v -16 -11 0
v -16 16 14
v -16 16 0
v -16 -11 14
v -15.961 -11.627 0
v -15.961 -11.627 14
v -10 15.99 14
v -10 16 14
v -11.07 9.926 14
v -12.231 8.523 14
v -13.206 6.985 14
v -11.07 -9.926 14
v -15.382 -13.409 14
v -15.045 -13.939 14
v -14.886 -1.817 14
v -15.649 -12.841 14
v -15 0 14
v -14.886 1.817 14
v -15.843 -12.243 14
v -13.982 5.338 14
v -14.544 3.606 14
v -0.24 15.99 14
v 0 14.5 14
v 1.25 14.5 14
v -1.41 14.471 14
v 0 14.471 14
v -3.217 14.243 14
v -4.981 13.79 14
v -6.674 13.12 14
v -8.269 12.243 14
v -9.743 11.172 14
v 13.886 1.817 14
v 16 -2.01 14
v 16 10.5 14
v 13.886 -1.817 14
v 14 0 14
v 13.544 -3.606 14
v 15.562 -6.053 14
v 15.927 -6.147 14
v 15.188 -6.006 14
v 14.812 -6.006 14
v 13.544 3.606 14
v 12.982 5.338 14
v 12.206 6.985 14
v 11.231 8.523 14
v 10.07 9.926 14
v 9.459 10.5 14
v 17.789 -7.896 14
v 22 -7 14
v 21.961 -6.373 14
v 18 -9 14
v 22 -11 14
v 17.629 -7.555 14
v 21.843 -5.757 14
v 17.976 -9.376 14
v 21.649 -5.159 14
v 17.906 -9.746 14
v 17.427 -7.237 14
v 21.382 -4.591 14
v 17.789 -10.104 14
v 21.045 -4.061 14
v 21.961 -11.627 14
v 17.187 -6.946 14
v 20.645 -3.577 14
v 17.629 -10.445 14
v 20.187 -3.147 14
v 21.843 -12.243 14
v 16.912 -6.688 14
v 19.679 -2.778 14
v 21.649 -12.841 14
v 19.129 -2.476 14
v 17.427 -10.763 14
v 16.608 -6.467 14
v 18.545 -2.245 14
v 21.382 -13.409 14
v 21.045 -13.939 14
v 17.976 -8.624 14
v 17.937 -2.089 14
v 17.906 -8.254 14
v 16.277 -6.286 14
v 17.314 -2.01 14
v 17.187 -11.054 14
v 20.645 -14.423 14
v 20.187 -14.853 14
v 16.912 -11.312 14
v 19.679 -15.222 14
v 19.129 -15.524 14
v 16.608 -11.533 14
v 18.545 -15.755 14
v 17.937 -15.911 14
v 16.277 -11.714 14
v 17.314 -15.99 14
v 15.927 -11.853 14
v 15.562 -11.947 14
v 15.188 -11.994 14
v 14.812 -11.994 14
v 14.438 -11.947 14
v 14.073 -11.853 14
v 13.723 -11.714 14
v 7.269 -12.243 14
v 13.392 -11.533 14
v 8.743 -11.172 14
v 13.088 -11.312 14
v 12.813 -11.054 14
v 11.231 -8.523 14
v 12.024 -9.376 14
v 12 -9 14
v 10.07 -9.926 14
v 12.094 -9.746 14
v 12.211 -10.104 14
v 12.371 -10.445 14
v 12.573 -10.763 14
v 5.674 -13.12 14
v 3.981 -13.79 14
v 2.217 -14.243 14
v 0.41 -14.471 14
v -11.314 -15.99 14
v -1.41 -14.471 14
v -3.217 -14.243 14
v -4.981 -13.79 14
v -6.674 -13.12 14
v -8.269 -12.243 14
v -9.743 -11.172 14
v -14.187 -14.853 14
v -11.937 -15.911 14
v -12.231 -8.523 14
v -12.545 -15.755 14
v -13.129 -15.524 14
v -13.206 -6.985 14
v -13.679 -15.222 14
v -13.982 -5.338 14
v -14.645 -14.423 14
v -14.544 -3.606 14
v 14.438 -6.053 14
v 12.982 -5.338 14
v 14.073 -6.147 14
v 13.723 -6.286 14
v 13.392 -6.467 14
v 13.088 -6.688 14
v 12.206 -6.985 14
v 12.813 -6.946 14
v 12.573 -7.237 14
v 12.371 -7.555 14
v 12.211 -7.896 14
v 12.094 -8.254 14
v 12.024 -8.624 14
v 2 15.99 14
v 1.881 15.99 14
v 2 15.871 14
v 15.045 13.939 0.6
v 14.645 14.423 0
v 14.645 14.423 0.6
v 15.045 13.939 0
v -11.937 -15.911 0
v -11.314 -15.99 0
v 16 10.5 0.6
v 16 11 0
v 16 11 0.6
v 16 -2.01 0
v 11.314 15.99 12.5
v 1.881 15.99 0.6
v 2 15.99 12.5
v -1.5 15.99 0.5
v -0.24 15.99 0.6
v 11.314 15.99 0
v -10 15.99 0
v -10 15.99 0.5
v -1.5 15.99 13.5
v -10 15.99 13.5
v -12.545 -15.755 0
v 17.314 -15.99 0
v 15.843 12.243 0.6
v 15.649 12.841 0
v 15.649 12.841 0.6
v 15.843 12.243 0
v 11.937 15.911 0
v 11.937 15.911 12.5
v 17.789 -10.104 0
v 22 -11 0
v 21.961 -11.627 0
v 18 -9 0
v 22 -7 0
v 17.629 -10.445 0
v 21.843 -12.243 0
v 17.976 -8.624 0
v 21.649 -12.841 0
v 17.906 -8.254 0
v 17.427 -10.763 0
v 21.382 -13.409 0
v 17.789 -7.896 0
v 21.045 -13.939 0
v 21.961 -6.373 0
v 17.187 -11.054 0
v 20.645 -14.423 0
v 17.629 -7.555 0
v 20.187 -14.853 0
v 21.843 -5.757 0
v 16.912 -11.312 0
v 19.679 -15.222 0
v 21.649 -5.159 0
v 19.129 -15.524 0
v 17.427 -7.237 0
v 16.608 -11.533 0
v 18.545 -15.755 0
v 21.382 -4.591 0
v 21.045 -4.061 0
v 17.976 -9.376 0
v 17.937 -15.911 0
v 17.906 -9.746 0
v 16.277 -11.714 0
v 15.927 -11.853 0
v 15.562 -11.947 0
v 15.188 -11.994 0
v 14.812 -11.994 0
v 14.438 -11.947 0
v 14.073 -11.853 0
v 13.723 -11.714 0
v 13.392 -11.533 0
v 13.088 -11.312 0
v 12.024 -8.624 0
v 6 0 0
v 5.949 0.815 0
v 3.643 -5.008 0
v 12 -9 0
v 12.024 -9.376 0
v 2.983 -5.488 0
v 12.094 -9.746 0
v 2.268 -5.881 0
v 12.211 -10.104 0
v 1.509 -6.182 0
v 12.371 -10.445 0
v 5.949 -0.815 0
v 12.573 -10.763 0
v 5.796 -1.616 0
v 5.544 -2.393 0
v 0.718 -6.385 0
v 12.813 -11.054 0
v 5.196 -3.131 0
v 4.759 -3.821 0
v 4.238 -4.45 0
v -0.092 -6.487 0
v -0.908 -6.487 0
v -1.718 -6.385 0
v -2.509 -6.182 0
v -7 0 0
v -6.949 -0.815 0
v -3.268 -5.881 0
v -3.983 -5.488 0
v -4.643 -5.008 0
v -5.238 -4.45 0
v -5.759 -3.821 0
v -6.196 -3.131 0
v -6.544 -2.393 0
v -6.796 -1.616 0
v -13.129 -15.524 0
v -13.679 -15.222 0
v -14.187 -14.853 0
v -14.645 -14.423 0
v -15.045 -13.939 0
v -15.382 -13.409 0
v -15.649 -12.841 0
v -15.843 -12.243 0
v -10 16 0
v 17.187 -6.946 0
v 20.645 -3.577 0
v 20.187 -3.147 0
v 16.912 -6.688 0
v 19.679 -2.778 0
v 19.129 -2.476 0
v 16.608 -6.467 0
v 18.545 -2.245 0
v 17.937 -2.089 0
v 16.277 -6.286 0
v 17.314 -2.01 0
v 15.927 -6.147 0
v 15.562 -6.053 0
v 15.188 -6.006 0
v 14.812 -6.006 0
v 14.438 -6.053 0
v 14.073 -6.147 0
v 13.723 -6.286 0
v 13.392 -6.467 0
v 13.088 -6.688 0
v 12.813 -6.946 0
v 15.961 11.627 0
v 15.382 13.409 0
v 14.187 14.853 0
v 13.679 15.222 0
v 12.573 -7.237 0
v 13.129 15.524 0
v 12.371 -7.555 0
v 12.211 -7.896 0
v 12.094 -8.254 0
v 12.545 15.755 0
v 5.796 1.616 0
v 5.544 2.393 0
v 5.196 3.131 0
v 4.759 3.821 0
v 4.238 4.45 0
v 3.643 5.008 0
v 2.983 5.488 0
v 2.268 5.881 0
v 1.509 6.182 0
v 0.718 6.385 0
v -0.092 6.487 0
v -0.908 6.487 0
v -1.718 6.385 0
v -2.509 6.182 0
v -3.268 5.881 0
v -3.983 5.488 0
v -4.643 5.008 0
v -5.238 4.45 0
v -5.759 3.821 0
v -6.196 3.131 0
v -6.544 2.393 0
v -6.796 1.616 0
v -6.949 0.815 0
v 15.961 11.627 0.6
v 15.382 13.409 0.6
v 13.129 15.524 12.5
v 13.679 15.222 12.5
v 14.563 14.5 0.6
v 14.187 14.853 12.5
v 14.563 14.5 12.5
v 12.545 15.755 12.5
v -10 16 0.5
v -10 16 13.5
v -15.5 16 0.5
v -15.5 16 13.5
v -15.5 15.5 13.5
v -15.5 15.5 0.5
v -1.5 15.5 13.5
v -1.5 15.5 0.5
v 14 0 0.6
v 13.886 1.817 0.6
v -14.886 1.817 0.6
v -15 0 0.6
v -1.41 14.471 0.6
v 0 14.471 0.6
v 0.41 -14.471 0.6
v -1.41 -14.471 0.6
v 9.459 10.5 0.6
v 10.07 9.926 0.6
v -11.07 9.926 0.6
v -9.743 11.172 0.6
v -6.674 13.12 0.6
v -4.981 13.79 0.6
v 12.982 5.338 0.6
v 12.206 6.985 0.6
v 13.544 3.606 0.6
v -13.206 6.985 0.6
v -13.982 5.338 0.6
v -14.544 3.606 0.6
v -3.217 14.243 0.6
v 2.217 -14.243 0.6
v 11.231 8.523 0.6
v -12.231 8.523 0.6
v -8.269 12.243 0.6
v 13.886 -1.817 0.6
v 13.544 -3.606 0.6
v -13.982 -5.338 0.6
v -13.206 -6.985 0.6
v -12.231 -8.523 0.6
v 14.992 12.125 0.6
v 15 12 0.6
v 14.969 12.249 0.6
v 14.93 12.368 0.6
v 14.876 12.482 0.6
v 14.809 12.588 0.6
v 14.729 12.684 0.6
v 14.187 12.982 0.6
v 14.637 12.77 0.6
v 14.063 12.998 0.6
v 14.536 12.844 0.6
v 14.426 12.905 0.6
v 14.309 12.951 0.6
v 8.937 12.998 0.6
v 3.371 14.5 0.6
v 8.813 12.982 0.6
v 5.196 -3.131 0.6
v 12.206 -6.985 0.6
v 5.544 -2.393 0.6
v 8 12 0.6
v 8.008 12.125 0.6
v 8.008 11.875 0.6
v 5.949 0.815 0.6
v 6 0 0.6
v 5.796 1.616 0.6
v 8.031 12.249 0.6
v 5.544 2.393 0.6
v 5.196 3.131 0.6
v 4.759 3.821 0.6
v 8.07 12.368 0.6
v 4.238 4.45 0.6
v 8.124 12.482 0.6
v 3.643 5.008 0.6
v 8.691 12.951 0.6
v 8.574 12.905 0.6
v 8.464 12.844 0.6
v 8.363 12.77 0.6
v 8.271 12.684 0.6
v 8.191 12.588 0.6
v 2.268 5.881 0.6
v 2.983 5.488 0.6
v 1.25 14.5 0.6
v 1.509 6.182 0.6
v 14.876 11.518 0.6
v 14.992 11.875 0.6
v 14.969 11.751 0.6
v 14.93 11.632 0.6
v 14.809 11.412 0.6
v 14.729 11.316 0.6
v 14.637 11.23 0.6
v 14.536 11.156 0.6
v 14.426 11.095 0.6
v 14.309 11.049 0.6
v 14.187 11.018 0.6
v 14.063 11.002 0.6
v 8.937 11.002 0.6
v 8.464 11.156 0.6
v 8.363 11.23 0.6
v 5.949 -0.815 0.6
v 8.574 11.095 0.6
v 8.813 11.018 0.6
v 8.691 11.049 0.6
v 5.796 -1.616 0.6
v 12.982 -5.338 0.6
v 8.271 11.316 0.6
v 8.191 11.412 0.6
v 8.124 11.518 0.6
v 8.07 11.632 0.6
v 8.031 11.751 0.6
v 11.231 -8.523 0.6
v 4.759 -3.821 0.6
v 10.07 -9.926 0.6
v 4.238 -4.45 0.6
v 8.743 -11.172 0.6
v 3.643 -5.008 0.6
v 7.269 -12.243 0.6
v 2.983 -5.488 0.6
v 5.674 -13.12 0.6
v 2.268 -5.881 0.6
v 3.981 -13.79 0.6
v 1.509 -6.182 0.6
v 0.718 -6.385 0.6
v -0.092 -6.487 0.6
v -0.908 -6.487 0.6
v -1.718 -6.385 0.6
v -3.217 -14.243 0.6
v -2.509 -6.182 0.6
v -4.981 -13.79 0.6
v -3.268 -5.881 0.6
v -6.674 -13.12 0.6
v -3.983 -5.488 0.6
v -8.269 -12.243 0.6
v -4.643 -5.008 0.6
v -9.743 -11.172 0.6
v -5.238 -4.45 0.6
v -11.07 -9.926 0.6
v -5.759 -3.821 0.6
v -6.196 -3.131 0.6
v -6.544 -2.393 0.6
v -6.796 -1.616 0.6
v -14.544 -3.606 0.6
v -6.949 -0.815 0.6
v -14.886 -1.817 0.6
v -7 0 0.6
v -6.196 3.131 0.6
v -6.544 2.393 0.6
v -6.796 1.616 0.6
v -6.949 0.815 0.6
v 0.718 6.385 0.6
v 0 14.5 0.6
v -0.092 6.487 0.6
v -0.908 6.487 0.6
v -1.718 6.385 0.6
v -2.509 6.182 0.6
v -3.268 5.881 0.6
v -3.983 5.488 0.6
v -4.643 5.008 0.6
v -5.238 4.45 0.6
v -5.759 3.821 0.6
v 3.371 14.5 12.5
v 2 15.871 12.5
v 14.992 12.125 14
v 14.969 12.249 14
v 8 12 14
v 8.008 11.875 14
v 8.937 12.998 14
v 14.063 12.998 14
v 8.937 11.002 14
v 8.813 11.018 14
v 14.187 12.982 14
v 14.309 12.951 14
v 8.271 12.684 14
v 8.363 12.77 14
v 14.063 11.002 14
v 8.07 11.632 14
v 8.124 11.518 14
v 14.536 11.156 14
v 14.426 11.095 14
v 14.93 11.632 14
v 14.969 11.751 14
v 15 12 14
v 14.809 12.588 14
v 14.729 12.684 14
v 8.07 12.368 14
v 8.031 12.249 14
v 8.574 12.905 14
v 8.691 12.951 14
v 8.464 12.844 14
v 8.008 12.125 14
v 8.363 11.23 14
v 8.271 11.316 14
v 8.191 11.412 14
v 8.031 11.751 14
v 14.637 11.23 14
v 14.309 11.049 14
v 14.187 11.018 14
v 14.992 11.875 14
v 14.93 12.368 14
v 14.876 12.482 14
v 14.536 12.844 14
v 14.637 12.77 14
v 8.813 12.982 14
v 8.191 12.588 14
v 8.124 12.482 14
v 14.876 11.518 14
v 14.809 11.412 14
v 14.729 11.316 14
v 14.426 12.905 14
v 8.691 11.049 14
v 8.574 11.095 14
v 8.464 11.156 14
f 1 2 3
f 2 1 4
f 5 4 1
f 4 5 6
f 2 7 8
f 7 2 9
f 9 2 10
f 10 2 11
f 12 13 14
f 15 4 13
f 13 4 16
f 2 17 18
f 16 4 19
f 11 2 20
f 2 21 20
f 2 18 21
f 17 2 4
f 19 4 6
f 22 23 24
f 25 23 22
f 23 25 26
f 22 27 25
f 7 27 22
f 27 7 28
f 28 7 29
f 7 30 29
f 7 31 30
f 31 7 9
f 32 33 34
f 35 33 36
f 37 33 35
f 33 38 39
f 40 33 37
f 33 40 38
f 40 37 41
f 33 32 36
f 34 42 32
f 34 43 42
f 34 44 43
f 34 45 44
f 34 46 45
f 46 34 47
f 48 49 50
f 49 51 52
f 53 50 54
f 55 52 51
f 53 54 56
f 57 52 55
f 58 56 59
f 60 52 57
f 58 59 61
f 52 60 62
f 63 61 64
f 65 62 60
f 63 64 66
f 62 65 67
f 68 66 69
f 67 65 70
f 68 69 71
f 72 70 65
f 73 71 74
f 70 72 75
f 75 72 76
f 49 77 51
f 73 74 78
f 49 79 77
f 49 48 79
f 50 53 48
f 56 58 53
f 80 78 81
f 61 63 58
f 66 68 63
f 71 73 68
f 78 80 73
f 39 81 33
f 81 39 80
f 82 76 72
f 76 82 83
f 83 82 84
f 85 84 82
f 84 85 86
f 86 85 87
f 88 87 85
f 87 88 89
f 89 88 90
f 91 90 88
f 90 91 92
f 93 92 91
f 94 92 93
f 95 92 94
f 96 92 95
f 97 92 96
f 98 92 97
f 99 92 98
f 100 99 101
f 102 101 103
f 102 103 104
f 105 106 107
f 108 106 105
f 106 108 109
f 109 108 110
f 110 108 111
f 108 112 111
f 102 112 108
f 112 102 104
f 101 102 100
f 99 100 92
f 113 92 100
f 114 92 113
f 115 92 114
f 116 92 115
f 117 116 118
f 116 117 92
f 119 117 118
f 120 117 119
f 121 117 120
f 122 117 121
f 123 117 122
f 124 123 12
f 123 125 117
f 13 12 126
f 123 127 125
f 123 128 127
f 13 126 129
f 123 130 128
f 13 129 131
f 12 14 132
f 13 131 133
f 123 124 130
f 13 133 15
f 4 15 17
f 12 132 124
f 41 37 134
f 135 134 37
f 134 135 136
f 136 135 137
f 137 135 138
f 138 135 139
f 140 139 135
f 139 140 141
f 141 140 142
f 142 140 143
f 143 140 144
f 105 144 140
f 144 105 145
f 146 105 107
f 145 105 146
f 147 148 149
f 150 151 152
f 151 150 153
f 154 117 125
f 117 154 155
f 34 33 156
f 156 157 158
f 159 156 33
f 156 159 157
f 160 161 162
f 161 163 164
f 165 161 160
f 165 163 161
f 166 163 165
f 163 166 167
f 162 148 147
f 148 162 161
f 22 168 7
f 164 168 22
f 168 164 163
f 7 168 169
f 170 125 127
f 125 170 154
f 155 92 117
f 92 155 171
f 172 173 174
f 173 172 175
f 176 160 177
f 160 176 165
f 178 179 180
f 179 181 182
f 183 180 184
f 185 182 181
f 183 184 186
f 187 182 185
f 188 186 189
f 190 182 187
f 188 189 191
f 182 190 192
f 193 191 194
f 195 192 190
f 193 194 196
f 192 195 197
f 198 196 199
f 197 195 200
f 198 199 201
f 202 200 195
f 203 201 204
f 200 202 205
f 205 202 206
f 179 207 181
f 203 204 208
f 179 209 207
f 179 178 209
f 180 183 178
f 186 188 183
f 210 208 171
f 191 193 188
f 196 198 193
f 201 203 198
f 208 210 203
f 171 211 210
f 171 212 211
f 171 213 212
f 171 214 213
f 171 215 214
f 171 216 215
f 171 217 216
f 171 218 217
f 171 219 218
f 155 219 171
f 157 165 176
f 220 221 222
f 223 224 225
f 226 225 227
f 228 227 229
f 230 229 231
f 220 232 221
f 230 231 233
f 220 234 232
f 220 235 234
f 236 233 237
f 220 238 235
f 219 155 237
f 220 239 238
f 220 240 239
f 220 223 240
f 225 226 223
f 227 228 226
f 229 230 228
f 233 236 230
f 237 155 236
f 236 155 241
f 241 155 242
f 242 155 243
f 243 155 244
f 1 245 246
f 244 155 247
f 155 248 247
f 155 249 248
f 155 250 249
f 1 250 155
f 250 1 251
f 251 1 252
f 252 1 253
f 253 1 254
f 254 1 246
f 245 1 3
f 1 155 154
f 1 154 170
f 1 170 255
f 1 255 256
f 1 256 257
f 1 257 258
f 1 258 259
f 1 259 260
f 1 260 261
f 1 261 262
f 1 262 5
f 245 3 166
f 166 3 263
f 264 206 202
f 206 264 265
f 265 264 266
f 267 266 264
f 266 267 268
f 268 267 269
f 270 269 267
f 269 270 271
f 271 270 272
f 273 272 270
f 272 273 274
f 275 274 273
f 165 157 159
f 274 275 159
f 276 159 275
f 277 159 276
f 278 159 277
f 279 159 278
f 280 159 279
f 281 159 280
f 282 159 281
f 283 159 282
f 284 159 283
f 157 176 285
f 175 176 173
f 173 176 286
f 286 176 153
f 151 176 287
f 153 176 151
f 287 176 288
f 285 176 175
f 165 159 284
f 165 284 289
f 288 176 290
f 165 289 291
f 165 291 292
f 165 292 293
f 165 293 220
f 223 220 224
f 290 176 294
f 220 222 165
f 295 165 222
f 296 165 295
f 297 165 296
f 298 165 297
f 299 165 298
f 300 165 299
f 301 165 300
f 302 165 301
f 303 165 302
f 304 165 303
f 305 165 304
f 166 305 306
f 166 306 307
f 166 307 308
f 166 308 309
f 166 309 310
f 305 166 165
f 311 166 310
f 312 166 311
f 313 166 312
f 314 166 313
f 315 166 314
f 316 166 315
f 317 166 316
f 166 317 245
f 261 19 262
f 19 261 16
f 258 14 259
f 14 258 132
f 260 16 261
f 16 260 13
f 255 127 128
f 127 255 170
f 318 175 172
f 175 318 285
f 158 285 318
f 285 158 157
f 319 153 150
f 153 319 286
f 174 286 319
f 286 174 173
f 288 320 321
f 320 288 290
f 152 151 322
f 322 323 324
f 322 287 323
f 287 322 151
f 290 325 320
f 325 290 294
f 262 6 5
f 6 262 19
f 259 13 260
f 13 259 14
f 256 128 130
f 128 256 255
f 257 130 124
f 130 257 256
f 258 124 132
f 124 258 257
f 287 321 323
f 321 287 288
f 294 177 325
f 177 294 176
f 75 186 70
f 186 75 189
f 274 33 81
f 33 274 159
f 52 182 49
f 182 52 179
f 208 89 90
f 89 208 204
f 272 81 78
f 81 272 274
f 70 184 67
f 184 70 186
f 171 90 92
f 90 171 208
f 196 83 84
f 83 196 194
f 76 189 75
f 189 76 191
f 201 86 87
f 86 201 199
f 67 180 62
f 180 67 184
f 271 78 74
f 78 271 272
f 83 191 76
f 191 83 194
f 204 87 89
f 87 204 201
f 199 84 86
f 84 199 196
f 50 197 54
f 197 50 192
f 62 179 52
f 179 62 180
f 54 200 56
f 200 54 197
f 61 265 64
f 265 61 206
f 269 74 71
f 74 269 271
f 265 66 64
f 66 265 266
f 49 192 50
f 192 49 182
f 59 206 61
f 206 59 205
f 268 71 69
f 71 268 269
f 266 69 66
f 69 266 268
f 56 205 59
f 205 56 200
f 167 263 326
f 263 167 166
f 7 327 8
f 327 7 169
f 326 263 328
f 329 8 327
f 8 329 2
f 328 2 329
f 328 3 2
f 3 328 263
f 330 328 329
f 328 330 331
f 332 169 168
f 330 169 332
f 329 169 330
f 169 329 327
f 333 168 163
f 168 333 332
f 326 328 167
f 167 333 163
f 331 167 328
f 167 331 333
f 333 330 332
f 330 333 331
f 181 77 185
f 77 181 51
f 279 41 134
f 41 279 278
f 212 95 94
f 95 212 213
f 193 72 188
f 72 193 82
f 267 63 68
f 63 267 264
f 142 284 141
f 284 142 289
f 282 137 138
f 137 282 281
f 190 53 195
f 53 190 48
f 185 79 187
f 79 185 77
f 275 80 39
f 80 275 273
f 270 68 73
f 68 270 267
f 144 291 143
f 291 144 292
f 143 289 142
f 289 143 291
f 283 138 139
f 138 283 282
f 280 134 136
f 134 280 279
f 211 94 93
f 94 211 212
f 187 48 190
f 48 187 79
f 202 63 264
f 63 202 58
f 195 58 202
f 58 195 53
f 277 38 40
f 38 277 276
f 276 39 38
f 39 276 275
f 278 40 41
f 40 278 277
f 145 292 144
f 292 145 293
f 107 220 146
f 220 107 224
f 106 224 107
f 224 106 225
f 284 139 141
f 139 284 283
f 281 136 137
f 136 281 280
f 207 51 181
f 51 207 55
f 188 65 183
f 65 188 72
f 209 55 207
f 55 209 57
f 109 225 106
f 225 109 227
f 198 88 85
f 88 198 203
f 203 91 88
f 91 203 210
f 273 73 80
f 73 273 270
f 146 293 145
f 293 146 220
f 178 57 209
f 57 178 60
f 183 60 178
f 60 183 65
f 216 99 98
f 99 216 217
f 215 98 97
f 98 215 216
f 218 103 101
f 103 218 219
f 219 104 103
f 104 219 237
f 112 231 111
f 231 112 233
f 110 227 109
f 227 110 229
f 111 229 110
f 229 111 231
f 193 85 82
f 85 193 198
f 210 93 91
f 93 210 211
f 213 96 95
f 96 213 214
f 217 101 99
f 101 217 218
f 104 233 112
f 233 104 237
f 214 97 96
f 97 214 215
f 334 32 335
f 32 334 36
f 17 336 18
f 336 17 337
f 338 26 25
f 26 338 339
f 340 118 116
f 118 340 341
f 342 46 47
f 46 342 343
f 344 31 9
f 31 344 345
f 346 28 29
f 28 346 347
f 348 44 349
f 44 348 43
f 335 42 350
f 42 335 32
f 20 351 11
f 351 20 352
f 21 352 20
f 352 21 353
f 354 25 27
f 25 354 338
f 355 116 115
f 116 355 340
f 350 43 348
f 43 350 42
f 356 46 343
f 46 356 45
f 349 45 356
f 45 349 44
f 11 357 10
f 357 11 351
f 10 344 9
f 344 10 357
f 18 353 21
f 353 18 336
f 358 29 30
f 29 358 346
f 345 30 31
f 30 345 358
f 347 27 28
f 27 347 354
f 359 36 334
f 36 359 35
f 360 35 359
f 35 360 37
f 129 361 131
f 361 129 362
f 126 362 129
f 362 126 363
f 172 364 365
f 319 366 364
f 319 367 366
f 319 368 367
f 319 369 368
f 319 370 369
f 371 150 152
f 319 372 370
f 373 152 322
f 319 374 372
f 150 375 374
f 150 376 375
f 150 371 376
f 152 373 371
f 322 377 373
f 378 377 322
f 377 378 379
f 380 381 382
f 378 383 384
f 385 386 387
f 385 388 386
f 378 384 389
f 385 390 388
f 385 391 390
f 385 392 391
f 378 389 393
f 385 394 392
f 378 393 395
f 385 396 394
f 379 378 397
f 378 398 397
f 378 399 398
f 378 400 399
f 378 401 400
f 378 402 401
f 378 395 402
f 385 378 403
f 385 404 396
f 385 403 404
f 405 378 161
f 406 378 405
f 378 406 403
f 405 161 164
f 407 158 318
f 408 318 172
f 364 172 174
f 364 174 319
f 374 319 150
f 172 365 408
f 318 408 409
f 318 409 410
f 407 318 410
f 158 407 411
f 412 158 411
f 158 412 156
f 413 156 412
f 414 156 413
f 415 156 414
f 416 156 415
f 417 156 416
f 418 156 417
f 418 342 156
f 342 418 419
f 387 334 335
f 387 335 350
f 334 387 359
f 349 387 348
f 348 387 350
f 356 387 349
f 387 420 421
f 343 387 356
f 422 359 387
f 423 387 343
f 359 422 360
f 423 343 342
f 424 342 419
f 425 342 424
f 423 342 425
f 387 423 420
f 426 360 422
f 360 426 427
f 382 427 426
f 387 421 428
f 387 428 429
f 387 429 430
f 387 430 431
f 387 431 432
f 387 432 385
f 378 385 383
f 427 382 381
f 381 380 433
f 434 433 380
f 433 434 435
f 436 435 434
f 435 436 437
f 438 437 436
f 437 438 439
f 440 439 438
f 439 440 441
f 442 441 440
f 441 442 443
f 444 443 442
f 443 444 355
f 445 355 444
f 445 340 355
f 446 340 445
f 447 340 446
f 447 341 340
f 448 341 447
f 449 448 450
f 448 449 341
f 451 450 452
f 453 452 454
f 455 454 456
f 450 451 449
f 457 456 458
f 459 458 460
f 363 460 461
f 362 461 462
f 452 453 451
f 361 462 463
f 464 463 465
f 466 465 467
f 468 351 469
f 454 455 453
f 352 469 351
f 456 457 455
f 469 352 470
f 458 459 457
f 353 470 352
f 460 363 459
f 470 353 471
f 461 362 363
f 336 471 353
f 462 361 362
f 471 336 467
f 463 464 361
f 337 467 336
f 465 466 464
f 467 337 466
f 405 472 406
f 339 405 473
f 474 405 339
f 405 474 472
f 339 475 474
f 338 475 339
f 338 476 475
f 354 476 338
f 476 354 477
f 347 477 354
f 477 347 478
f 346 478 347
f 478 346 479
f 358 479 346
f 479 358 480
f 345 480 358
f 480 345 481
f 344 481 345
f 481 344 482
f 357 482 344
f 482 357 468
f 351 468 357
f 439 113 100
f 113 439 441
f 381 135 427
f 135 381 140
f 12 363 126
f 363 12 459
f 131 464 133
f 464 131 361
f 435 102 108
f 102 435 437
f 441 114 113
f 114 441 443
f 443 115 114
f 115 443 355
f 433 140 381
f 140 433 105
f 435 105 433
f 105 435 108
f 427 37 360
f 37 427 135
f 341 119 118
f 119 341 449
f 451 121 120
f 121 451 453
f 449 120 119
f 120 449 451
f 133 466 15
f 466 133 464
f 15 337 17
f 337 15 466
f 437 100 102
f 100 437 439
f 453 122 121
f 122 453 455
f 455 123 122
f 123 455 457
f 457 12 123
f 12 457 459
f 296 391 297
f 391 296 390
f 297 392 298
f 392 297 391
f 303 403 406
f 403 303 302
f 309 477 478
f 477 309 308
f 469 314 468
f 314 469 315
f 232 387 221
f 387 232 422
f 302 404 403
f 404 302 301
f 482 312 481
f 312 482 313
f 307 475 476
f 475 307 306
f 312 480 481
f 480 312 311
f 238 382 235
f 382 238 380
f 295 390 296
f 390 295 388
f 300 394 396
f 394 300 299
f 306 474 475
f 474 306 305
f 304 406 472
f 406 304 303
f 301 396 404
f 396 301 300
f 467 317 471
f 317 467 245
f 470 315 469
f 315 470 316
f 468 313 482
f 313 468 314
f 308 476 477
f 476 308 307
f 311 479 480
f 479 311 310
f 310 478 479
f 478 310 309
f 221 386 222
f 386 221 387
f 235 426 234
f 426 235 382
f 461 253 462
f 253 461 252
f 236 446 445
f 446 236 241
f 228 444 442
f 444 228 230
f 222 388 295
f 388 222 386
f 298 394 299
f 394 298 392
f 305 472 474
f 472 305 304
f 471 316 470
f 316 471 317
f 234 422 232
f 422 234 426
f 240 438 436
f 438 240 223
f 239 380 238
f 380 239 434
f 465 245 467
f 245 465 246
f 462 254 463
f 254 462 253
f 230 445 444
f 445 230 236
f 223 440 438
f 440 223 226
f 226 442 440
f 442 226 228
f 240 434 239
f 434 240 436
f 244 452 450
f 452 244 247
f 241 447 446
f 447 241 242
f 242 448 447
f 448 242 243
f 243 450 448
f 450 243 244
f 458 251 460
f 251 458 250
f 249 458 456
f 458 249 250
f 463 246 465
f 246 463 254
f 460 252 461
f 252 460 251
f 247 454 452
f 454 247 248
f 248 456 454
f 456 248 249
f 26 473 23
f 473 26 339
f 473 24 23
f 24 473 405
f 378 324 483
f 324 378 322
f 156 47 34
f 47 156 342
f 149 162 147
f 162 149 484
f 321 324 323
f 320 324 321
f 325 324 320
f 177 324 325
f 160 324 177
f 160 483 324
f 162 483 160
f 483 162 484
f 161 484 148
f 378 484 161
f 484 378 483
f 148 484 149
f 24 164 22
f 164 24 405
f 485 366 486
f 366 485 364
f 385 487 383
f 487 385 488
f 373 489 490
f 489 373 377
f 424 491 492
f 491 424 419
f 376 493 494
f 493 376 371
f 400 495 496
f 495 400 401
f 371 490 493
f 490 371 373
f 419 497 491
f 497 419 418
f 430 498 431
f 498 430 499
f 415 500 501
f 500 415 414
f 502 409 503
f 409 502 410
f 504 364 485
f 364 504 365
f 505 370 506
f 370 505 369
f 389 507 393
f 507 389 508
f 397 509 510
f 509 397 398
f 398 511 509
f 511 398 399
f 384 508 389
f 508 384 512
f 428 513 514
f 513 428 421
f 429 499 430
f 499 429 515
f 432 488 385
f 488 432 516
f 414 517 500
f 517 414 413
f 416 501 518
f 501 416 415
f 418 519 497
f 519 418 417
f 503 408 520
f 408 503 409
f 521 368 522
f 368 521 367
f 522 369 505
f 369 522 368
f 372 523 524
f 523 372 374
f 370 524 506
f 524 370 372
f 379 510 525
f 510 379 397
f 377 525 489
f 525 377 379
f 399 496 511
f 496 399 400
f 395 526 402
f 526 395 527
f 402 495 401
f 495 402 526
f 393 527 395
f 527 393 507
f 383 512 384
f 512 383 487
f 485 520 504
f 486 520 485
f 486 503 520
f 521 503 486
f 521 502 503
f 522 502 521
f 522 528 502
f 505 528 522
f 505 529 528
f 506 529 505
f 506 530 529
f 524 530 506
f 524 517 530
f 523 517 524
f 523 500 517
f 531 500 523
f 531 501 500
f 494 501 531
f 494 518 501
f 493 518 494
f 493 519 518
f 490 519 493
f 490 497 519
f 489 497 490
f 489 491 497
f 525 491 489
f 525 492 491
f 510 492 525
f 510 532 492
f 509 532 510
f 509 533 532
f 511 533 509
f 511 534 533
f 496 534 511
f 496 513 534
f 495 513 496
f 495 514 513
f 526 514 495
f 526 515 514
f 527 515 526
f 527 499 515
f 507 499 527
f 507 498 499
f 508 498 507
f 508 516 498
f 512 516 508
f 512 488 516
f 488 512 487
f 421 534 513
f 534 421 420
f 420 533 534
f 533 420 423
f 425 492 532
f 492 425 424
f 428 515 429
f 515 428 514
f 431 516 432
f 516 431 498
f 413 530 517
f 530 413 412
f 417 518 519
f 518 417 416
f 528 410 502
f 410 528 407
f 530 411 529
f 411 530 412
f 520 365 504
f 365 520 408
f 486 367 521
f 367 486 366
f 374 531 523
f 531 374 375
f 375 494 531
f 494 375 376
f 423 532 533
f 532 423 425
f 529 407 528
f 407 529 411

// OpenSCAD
$fn = 50;


union() {
	difference() {
		union() {
			translate(v = [0, 0, 0]) {
				rotate(a = [0, 0, 0]) {
					hull() {
						translate(v = [-11.0000000000, 11.0000000000, 0]) {
							rotate(a = [0, 0, 0]) {
								translate(v = [0, 0, 0]) {
									rotate(a = [0, 0, 0]) {
										cylinder(h = 14, r = 5);
									}
								}
							}
						}
						translate(v = [11.0000000000, 11.0000000000, 0]) {
							rotate(a = [0, 0, 0]) {
								translate(v = [0, 0, 0]) {
									rotate(a = [0, 0, 0]) {
										cylinder(h = 14, r = 5);
									}
								}
							}
						}
						translate(v = [-11.0000000000, -11.0000000000, 0]) {
							rotate(a = [0, 0, 0]) {
								translate(v = [0, 0, 0]) {
									rotate(a = [0, 0, 0]) {
										cylinder(h = 14, r = 5);
									}
								}
							}
						}
						translate(v = [11.0000000000, -11.0000000000, 0]) {
							rotate(a = [0, 0, 0]) {
								translate(v = [0, 0, 0]) {
									rotate(a = [0, 0, 0]) {
										cylinder(h = 14, r = 5);
									}
								}
							}
						}
					}
				}
			}
			translate(v = [7.5000000000, -9.0000000000, 0]) {
				rotate(a = [0, 0, 0]) {
					hull() {
						translate(v = [-9.5000000000, 2.0000000000, 0]) {
							rotate(a = [0, 0, 0]) {
								translate(v = [0, 0, 0]) {
									rotate(a = [0, 0, 0]) {
										cylinder(h = 14, r = 5);
									}
								}
							}
						}
						translate(v = [9.5000000000, 2.0000000000, 0]) {
							rotate(a = [0, 0, 0]) {
								translate(v = [0, 0, 0]) {
									rotate(a = [0, 0, 0]) {
										cylinder(h = 14, r = 5);
									}
								}
							}
						}
						translate(v = [-9.5000000000, -2.0000000000, 0]) {
							rotate(a = [0, 0, 0]) {
								translate(v = [0, 0, 0]) {
									rotate(a = [0, 0, 0]) {
										cylinder(h = 14, r = 5);
									}
								}
							}
						}
						translate(v = [9.5000000000, -2.0000000000, 0]) {
							rotate(a = [0, 0, 0]) {
								translate(v = [0, 0, 0]) {
									rotate(a = [0, 0, 0]) {
										cylinder(h = 14, r = 5);
									}
								}
							}
						}
					}
				}
			}
			translate(v = [-16.0000000000, 10.0000000000, 0]) {
				rotate(a = [0, 0, 0]) {
					cube(size = [6, 6, 14]);
				}
			}
		}
		union() {
			translate(v = [-15.5000000000, 15.5000000000, 0.5000000000]) {
				rotate(a = [0, 0, 0]) {
					cube(size = [14, 0.5000000000, 13.0000000000]);
				}
			}
			translate(v = [15.0000000000, -9.0000000000, -125.0000000000]) {
				rotate(a = [0, 0, 0]) {
					cylinder(h = 250, r = 3.0000000000);
				}
			}
			translate(v = [-0.5000000000, 0.0000000000, 0.6000000000]) {
				rotate(a = [0, 0, 0]) {
					cylinder(h = 16.4000000000, r = 14.5000000000);
				}
			}
			translate(v = [-0.5000000000, 0.0000000000, -7.0000000000]) {
				rotate(a = [0, 0, 0]) {
					cylinder(h = 14, r = 6.5000000000);
				}
			}
			translate(v = [0.0000000000, 10.5000000000, 0.6000000000]) {
				rotate(a = [0, 0, 0]) {
					cube(size = [16.0000000000, 4, 16.4000000000]);
				}
			}
			translate(v = [2.0000000000, 10.5000000000, 12.5000000000]) {
				rotate(a = [0, 0, 0]) {
					cube(size = [14.0000000000, 7, 1.5000000000]);
				}
			}
			translate(v = [-3.0000000000, 18.7500000000, 0.6000000000]) {
				rotate(a = [0, 0, -45]) {
					cube(size = [10, 1.5000000000, 16.4000000000]);
				}
			}
			translate(v = [2.2500000000, 11.0000000000, 0.6000000000]) {
				rotate(a = [0, 0, 0]) {
					cube(size = [7.5000000000, 2, 13.4000000000]);
				}
			}
		}
	}
	union() {
		translate(v = [11.5000000000, 12, 0]) {
			rotate(a = [0, 0, 0]) {
				hull() {
					translate(v = [2.5000000000, 0, 0]) {
						rotate(a = [0, 0, 0]) {
							translate(v = [0, 0, 0]) {
								rotate(a = [0, 0, 0]) {
									cylinder(h = 14, r = 1.0000000000);
								}
							}
						}
					}
					translate(v = [-2.5000000000, 0, 0]) {
						rotate(a = [0, 0, 0]) {
							translate(v = [0, 0, 0]) {
								rotate(a = [0, 0, 0]) {
									cylinder(h = 14, r = 1.0000000000);
								}
							}
						}
					}
				}
			}
		}
	}
}
